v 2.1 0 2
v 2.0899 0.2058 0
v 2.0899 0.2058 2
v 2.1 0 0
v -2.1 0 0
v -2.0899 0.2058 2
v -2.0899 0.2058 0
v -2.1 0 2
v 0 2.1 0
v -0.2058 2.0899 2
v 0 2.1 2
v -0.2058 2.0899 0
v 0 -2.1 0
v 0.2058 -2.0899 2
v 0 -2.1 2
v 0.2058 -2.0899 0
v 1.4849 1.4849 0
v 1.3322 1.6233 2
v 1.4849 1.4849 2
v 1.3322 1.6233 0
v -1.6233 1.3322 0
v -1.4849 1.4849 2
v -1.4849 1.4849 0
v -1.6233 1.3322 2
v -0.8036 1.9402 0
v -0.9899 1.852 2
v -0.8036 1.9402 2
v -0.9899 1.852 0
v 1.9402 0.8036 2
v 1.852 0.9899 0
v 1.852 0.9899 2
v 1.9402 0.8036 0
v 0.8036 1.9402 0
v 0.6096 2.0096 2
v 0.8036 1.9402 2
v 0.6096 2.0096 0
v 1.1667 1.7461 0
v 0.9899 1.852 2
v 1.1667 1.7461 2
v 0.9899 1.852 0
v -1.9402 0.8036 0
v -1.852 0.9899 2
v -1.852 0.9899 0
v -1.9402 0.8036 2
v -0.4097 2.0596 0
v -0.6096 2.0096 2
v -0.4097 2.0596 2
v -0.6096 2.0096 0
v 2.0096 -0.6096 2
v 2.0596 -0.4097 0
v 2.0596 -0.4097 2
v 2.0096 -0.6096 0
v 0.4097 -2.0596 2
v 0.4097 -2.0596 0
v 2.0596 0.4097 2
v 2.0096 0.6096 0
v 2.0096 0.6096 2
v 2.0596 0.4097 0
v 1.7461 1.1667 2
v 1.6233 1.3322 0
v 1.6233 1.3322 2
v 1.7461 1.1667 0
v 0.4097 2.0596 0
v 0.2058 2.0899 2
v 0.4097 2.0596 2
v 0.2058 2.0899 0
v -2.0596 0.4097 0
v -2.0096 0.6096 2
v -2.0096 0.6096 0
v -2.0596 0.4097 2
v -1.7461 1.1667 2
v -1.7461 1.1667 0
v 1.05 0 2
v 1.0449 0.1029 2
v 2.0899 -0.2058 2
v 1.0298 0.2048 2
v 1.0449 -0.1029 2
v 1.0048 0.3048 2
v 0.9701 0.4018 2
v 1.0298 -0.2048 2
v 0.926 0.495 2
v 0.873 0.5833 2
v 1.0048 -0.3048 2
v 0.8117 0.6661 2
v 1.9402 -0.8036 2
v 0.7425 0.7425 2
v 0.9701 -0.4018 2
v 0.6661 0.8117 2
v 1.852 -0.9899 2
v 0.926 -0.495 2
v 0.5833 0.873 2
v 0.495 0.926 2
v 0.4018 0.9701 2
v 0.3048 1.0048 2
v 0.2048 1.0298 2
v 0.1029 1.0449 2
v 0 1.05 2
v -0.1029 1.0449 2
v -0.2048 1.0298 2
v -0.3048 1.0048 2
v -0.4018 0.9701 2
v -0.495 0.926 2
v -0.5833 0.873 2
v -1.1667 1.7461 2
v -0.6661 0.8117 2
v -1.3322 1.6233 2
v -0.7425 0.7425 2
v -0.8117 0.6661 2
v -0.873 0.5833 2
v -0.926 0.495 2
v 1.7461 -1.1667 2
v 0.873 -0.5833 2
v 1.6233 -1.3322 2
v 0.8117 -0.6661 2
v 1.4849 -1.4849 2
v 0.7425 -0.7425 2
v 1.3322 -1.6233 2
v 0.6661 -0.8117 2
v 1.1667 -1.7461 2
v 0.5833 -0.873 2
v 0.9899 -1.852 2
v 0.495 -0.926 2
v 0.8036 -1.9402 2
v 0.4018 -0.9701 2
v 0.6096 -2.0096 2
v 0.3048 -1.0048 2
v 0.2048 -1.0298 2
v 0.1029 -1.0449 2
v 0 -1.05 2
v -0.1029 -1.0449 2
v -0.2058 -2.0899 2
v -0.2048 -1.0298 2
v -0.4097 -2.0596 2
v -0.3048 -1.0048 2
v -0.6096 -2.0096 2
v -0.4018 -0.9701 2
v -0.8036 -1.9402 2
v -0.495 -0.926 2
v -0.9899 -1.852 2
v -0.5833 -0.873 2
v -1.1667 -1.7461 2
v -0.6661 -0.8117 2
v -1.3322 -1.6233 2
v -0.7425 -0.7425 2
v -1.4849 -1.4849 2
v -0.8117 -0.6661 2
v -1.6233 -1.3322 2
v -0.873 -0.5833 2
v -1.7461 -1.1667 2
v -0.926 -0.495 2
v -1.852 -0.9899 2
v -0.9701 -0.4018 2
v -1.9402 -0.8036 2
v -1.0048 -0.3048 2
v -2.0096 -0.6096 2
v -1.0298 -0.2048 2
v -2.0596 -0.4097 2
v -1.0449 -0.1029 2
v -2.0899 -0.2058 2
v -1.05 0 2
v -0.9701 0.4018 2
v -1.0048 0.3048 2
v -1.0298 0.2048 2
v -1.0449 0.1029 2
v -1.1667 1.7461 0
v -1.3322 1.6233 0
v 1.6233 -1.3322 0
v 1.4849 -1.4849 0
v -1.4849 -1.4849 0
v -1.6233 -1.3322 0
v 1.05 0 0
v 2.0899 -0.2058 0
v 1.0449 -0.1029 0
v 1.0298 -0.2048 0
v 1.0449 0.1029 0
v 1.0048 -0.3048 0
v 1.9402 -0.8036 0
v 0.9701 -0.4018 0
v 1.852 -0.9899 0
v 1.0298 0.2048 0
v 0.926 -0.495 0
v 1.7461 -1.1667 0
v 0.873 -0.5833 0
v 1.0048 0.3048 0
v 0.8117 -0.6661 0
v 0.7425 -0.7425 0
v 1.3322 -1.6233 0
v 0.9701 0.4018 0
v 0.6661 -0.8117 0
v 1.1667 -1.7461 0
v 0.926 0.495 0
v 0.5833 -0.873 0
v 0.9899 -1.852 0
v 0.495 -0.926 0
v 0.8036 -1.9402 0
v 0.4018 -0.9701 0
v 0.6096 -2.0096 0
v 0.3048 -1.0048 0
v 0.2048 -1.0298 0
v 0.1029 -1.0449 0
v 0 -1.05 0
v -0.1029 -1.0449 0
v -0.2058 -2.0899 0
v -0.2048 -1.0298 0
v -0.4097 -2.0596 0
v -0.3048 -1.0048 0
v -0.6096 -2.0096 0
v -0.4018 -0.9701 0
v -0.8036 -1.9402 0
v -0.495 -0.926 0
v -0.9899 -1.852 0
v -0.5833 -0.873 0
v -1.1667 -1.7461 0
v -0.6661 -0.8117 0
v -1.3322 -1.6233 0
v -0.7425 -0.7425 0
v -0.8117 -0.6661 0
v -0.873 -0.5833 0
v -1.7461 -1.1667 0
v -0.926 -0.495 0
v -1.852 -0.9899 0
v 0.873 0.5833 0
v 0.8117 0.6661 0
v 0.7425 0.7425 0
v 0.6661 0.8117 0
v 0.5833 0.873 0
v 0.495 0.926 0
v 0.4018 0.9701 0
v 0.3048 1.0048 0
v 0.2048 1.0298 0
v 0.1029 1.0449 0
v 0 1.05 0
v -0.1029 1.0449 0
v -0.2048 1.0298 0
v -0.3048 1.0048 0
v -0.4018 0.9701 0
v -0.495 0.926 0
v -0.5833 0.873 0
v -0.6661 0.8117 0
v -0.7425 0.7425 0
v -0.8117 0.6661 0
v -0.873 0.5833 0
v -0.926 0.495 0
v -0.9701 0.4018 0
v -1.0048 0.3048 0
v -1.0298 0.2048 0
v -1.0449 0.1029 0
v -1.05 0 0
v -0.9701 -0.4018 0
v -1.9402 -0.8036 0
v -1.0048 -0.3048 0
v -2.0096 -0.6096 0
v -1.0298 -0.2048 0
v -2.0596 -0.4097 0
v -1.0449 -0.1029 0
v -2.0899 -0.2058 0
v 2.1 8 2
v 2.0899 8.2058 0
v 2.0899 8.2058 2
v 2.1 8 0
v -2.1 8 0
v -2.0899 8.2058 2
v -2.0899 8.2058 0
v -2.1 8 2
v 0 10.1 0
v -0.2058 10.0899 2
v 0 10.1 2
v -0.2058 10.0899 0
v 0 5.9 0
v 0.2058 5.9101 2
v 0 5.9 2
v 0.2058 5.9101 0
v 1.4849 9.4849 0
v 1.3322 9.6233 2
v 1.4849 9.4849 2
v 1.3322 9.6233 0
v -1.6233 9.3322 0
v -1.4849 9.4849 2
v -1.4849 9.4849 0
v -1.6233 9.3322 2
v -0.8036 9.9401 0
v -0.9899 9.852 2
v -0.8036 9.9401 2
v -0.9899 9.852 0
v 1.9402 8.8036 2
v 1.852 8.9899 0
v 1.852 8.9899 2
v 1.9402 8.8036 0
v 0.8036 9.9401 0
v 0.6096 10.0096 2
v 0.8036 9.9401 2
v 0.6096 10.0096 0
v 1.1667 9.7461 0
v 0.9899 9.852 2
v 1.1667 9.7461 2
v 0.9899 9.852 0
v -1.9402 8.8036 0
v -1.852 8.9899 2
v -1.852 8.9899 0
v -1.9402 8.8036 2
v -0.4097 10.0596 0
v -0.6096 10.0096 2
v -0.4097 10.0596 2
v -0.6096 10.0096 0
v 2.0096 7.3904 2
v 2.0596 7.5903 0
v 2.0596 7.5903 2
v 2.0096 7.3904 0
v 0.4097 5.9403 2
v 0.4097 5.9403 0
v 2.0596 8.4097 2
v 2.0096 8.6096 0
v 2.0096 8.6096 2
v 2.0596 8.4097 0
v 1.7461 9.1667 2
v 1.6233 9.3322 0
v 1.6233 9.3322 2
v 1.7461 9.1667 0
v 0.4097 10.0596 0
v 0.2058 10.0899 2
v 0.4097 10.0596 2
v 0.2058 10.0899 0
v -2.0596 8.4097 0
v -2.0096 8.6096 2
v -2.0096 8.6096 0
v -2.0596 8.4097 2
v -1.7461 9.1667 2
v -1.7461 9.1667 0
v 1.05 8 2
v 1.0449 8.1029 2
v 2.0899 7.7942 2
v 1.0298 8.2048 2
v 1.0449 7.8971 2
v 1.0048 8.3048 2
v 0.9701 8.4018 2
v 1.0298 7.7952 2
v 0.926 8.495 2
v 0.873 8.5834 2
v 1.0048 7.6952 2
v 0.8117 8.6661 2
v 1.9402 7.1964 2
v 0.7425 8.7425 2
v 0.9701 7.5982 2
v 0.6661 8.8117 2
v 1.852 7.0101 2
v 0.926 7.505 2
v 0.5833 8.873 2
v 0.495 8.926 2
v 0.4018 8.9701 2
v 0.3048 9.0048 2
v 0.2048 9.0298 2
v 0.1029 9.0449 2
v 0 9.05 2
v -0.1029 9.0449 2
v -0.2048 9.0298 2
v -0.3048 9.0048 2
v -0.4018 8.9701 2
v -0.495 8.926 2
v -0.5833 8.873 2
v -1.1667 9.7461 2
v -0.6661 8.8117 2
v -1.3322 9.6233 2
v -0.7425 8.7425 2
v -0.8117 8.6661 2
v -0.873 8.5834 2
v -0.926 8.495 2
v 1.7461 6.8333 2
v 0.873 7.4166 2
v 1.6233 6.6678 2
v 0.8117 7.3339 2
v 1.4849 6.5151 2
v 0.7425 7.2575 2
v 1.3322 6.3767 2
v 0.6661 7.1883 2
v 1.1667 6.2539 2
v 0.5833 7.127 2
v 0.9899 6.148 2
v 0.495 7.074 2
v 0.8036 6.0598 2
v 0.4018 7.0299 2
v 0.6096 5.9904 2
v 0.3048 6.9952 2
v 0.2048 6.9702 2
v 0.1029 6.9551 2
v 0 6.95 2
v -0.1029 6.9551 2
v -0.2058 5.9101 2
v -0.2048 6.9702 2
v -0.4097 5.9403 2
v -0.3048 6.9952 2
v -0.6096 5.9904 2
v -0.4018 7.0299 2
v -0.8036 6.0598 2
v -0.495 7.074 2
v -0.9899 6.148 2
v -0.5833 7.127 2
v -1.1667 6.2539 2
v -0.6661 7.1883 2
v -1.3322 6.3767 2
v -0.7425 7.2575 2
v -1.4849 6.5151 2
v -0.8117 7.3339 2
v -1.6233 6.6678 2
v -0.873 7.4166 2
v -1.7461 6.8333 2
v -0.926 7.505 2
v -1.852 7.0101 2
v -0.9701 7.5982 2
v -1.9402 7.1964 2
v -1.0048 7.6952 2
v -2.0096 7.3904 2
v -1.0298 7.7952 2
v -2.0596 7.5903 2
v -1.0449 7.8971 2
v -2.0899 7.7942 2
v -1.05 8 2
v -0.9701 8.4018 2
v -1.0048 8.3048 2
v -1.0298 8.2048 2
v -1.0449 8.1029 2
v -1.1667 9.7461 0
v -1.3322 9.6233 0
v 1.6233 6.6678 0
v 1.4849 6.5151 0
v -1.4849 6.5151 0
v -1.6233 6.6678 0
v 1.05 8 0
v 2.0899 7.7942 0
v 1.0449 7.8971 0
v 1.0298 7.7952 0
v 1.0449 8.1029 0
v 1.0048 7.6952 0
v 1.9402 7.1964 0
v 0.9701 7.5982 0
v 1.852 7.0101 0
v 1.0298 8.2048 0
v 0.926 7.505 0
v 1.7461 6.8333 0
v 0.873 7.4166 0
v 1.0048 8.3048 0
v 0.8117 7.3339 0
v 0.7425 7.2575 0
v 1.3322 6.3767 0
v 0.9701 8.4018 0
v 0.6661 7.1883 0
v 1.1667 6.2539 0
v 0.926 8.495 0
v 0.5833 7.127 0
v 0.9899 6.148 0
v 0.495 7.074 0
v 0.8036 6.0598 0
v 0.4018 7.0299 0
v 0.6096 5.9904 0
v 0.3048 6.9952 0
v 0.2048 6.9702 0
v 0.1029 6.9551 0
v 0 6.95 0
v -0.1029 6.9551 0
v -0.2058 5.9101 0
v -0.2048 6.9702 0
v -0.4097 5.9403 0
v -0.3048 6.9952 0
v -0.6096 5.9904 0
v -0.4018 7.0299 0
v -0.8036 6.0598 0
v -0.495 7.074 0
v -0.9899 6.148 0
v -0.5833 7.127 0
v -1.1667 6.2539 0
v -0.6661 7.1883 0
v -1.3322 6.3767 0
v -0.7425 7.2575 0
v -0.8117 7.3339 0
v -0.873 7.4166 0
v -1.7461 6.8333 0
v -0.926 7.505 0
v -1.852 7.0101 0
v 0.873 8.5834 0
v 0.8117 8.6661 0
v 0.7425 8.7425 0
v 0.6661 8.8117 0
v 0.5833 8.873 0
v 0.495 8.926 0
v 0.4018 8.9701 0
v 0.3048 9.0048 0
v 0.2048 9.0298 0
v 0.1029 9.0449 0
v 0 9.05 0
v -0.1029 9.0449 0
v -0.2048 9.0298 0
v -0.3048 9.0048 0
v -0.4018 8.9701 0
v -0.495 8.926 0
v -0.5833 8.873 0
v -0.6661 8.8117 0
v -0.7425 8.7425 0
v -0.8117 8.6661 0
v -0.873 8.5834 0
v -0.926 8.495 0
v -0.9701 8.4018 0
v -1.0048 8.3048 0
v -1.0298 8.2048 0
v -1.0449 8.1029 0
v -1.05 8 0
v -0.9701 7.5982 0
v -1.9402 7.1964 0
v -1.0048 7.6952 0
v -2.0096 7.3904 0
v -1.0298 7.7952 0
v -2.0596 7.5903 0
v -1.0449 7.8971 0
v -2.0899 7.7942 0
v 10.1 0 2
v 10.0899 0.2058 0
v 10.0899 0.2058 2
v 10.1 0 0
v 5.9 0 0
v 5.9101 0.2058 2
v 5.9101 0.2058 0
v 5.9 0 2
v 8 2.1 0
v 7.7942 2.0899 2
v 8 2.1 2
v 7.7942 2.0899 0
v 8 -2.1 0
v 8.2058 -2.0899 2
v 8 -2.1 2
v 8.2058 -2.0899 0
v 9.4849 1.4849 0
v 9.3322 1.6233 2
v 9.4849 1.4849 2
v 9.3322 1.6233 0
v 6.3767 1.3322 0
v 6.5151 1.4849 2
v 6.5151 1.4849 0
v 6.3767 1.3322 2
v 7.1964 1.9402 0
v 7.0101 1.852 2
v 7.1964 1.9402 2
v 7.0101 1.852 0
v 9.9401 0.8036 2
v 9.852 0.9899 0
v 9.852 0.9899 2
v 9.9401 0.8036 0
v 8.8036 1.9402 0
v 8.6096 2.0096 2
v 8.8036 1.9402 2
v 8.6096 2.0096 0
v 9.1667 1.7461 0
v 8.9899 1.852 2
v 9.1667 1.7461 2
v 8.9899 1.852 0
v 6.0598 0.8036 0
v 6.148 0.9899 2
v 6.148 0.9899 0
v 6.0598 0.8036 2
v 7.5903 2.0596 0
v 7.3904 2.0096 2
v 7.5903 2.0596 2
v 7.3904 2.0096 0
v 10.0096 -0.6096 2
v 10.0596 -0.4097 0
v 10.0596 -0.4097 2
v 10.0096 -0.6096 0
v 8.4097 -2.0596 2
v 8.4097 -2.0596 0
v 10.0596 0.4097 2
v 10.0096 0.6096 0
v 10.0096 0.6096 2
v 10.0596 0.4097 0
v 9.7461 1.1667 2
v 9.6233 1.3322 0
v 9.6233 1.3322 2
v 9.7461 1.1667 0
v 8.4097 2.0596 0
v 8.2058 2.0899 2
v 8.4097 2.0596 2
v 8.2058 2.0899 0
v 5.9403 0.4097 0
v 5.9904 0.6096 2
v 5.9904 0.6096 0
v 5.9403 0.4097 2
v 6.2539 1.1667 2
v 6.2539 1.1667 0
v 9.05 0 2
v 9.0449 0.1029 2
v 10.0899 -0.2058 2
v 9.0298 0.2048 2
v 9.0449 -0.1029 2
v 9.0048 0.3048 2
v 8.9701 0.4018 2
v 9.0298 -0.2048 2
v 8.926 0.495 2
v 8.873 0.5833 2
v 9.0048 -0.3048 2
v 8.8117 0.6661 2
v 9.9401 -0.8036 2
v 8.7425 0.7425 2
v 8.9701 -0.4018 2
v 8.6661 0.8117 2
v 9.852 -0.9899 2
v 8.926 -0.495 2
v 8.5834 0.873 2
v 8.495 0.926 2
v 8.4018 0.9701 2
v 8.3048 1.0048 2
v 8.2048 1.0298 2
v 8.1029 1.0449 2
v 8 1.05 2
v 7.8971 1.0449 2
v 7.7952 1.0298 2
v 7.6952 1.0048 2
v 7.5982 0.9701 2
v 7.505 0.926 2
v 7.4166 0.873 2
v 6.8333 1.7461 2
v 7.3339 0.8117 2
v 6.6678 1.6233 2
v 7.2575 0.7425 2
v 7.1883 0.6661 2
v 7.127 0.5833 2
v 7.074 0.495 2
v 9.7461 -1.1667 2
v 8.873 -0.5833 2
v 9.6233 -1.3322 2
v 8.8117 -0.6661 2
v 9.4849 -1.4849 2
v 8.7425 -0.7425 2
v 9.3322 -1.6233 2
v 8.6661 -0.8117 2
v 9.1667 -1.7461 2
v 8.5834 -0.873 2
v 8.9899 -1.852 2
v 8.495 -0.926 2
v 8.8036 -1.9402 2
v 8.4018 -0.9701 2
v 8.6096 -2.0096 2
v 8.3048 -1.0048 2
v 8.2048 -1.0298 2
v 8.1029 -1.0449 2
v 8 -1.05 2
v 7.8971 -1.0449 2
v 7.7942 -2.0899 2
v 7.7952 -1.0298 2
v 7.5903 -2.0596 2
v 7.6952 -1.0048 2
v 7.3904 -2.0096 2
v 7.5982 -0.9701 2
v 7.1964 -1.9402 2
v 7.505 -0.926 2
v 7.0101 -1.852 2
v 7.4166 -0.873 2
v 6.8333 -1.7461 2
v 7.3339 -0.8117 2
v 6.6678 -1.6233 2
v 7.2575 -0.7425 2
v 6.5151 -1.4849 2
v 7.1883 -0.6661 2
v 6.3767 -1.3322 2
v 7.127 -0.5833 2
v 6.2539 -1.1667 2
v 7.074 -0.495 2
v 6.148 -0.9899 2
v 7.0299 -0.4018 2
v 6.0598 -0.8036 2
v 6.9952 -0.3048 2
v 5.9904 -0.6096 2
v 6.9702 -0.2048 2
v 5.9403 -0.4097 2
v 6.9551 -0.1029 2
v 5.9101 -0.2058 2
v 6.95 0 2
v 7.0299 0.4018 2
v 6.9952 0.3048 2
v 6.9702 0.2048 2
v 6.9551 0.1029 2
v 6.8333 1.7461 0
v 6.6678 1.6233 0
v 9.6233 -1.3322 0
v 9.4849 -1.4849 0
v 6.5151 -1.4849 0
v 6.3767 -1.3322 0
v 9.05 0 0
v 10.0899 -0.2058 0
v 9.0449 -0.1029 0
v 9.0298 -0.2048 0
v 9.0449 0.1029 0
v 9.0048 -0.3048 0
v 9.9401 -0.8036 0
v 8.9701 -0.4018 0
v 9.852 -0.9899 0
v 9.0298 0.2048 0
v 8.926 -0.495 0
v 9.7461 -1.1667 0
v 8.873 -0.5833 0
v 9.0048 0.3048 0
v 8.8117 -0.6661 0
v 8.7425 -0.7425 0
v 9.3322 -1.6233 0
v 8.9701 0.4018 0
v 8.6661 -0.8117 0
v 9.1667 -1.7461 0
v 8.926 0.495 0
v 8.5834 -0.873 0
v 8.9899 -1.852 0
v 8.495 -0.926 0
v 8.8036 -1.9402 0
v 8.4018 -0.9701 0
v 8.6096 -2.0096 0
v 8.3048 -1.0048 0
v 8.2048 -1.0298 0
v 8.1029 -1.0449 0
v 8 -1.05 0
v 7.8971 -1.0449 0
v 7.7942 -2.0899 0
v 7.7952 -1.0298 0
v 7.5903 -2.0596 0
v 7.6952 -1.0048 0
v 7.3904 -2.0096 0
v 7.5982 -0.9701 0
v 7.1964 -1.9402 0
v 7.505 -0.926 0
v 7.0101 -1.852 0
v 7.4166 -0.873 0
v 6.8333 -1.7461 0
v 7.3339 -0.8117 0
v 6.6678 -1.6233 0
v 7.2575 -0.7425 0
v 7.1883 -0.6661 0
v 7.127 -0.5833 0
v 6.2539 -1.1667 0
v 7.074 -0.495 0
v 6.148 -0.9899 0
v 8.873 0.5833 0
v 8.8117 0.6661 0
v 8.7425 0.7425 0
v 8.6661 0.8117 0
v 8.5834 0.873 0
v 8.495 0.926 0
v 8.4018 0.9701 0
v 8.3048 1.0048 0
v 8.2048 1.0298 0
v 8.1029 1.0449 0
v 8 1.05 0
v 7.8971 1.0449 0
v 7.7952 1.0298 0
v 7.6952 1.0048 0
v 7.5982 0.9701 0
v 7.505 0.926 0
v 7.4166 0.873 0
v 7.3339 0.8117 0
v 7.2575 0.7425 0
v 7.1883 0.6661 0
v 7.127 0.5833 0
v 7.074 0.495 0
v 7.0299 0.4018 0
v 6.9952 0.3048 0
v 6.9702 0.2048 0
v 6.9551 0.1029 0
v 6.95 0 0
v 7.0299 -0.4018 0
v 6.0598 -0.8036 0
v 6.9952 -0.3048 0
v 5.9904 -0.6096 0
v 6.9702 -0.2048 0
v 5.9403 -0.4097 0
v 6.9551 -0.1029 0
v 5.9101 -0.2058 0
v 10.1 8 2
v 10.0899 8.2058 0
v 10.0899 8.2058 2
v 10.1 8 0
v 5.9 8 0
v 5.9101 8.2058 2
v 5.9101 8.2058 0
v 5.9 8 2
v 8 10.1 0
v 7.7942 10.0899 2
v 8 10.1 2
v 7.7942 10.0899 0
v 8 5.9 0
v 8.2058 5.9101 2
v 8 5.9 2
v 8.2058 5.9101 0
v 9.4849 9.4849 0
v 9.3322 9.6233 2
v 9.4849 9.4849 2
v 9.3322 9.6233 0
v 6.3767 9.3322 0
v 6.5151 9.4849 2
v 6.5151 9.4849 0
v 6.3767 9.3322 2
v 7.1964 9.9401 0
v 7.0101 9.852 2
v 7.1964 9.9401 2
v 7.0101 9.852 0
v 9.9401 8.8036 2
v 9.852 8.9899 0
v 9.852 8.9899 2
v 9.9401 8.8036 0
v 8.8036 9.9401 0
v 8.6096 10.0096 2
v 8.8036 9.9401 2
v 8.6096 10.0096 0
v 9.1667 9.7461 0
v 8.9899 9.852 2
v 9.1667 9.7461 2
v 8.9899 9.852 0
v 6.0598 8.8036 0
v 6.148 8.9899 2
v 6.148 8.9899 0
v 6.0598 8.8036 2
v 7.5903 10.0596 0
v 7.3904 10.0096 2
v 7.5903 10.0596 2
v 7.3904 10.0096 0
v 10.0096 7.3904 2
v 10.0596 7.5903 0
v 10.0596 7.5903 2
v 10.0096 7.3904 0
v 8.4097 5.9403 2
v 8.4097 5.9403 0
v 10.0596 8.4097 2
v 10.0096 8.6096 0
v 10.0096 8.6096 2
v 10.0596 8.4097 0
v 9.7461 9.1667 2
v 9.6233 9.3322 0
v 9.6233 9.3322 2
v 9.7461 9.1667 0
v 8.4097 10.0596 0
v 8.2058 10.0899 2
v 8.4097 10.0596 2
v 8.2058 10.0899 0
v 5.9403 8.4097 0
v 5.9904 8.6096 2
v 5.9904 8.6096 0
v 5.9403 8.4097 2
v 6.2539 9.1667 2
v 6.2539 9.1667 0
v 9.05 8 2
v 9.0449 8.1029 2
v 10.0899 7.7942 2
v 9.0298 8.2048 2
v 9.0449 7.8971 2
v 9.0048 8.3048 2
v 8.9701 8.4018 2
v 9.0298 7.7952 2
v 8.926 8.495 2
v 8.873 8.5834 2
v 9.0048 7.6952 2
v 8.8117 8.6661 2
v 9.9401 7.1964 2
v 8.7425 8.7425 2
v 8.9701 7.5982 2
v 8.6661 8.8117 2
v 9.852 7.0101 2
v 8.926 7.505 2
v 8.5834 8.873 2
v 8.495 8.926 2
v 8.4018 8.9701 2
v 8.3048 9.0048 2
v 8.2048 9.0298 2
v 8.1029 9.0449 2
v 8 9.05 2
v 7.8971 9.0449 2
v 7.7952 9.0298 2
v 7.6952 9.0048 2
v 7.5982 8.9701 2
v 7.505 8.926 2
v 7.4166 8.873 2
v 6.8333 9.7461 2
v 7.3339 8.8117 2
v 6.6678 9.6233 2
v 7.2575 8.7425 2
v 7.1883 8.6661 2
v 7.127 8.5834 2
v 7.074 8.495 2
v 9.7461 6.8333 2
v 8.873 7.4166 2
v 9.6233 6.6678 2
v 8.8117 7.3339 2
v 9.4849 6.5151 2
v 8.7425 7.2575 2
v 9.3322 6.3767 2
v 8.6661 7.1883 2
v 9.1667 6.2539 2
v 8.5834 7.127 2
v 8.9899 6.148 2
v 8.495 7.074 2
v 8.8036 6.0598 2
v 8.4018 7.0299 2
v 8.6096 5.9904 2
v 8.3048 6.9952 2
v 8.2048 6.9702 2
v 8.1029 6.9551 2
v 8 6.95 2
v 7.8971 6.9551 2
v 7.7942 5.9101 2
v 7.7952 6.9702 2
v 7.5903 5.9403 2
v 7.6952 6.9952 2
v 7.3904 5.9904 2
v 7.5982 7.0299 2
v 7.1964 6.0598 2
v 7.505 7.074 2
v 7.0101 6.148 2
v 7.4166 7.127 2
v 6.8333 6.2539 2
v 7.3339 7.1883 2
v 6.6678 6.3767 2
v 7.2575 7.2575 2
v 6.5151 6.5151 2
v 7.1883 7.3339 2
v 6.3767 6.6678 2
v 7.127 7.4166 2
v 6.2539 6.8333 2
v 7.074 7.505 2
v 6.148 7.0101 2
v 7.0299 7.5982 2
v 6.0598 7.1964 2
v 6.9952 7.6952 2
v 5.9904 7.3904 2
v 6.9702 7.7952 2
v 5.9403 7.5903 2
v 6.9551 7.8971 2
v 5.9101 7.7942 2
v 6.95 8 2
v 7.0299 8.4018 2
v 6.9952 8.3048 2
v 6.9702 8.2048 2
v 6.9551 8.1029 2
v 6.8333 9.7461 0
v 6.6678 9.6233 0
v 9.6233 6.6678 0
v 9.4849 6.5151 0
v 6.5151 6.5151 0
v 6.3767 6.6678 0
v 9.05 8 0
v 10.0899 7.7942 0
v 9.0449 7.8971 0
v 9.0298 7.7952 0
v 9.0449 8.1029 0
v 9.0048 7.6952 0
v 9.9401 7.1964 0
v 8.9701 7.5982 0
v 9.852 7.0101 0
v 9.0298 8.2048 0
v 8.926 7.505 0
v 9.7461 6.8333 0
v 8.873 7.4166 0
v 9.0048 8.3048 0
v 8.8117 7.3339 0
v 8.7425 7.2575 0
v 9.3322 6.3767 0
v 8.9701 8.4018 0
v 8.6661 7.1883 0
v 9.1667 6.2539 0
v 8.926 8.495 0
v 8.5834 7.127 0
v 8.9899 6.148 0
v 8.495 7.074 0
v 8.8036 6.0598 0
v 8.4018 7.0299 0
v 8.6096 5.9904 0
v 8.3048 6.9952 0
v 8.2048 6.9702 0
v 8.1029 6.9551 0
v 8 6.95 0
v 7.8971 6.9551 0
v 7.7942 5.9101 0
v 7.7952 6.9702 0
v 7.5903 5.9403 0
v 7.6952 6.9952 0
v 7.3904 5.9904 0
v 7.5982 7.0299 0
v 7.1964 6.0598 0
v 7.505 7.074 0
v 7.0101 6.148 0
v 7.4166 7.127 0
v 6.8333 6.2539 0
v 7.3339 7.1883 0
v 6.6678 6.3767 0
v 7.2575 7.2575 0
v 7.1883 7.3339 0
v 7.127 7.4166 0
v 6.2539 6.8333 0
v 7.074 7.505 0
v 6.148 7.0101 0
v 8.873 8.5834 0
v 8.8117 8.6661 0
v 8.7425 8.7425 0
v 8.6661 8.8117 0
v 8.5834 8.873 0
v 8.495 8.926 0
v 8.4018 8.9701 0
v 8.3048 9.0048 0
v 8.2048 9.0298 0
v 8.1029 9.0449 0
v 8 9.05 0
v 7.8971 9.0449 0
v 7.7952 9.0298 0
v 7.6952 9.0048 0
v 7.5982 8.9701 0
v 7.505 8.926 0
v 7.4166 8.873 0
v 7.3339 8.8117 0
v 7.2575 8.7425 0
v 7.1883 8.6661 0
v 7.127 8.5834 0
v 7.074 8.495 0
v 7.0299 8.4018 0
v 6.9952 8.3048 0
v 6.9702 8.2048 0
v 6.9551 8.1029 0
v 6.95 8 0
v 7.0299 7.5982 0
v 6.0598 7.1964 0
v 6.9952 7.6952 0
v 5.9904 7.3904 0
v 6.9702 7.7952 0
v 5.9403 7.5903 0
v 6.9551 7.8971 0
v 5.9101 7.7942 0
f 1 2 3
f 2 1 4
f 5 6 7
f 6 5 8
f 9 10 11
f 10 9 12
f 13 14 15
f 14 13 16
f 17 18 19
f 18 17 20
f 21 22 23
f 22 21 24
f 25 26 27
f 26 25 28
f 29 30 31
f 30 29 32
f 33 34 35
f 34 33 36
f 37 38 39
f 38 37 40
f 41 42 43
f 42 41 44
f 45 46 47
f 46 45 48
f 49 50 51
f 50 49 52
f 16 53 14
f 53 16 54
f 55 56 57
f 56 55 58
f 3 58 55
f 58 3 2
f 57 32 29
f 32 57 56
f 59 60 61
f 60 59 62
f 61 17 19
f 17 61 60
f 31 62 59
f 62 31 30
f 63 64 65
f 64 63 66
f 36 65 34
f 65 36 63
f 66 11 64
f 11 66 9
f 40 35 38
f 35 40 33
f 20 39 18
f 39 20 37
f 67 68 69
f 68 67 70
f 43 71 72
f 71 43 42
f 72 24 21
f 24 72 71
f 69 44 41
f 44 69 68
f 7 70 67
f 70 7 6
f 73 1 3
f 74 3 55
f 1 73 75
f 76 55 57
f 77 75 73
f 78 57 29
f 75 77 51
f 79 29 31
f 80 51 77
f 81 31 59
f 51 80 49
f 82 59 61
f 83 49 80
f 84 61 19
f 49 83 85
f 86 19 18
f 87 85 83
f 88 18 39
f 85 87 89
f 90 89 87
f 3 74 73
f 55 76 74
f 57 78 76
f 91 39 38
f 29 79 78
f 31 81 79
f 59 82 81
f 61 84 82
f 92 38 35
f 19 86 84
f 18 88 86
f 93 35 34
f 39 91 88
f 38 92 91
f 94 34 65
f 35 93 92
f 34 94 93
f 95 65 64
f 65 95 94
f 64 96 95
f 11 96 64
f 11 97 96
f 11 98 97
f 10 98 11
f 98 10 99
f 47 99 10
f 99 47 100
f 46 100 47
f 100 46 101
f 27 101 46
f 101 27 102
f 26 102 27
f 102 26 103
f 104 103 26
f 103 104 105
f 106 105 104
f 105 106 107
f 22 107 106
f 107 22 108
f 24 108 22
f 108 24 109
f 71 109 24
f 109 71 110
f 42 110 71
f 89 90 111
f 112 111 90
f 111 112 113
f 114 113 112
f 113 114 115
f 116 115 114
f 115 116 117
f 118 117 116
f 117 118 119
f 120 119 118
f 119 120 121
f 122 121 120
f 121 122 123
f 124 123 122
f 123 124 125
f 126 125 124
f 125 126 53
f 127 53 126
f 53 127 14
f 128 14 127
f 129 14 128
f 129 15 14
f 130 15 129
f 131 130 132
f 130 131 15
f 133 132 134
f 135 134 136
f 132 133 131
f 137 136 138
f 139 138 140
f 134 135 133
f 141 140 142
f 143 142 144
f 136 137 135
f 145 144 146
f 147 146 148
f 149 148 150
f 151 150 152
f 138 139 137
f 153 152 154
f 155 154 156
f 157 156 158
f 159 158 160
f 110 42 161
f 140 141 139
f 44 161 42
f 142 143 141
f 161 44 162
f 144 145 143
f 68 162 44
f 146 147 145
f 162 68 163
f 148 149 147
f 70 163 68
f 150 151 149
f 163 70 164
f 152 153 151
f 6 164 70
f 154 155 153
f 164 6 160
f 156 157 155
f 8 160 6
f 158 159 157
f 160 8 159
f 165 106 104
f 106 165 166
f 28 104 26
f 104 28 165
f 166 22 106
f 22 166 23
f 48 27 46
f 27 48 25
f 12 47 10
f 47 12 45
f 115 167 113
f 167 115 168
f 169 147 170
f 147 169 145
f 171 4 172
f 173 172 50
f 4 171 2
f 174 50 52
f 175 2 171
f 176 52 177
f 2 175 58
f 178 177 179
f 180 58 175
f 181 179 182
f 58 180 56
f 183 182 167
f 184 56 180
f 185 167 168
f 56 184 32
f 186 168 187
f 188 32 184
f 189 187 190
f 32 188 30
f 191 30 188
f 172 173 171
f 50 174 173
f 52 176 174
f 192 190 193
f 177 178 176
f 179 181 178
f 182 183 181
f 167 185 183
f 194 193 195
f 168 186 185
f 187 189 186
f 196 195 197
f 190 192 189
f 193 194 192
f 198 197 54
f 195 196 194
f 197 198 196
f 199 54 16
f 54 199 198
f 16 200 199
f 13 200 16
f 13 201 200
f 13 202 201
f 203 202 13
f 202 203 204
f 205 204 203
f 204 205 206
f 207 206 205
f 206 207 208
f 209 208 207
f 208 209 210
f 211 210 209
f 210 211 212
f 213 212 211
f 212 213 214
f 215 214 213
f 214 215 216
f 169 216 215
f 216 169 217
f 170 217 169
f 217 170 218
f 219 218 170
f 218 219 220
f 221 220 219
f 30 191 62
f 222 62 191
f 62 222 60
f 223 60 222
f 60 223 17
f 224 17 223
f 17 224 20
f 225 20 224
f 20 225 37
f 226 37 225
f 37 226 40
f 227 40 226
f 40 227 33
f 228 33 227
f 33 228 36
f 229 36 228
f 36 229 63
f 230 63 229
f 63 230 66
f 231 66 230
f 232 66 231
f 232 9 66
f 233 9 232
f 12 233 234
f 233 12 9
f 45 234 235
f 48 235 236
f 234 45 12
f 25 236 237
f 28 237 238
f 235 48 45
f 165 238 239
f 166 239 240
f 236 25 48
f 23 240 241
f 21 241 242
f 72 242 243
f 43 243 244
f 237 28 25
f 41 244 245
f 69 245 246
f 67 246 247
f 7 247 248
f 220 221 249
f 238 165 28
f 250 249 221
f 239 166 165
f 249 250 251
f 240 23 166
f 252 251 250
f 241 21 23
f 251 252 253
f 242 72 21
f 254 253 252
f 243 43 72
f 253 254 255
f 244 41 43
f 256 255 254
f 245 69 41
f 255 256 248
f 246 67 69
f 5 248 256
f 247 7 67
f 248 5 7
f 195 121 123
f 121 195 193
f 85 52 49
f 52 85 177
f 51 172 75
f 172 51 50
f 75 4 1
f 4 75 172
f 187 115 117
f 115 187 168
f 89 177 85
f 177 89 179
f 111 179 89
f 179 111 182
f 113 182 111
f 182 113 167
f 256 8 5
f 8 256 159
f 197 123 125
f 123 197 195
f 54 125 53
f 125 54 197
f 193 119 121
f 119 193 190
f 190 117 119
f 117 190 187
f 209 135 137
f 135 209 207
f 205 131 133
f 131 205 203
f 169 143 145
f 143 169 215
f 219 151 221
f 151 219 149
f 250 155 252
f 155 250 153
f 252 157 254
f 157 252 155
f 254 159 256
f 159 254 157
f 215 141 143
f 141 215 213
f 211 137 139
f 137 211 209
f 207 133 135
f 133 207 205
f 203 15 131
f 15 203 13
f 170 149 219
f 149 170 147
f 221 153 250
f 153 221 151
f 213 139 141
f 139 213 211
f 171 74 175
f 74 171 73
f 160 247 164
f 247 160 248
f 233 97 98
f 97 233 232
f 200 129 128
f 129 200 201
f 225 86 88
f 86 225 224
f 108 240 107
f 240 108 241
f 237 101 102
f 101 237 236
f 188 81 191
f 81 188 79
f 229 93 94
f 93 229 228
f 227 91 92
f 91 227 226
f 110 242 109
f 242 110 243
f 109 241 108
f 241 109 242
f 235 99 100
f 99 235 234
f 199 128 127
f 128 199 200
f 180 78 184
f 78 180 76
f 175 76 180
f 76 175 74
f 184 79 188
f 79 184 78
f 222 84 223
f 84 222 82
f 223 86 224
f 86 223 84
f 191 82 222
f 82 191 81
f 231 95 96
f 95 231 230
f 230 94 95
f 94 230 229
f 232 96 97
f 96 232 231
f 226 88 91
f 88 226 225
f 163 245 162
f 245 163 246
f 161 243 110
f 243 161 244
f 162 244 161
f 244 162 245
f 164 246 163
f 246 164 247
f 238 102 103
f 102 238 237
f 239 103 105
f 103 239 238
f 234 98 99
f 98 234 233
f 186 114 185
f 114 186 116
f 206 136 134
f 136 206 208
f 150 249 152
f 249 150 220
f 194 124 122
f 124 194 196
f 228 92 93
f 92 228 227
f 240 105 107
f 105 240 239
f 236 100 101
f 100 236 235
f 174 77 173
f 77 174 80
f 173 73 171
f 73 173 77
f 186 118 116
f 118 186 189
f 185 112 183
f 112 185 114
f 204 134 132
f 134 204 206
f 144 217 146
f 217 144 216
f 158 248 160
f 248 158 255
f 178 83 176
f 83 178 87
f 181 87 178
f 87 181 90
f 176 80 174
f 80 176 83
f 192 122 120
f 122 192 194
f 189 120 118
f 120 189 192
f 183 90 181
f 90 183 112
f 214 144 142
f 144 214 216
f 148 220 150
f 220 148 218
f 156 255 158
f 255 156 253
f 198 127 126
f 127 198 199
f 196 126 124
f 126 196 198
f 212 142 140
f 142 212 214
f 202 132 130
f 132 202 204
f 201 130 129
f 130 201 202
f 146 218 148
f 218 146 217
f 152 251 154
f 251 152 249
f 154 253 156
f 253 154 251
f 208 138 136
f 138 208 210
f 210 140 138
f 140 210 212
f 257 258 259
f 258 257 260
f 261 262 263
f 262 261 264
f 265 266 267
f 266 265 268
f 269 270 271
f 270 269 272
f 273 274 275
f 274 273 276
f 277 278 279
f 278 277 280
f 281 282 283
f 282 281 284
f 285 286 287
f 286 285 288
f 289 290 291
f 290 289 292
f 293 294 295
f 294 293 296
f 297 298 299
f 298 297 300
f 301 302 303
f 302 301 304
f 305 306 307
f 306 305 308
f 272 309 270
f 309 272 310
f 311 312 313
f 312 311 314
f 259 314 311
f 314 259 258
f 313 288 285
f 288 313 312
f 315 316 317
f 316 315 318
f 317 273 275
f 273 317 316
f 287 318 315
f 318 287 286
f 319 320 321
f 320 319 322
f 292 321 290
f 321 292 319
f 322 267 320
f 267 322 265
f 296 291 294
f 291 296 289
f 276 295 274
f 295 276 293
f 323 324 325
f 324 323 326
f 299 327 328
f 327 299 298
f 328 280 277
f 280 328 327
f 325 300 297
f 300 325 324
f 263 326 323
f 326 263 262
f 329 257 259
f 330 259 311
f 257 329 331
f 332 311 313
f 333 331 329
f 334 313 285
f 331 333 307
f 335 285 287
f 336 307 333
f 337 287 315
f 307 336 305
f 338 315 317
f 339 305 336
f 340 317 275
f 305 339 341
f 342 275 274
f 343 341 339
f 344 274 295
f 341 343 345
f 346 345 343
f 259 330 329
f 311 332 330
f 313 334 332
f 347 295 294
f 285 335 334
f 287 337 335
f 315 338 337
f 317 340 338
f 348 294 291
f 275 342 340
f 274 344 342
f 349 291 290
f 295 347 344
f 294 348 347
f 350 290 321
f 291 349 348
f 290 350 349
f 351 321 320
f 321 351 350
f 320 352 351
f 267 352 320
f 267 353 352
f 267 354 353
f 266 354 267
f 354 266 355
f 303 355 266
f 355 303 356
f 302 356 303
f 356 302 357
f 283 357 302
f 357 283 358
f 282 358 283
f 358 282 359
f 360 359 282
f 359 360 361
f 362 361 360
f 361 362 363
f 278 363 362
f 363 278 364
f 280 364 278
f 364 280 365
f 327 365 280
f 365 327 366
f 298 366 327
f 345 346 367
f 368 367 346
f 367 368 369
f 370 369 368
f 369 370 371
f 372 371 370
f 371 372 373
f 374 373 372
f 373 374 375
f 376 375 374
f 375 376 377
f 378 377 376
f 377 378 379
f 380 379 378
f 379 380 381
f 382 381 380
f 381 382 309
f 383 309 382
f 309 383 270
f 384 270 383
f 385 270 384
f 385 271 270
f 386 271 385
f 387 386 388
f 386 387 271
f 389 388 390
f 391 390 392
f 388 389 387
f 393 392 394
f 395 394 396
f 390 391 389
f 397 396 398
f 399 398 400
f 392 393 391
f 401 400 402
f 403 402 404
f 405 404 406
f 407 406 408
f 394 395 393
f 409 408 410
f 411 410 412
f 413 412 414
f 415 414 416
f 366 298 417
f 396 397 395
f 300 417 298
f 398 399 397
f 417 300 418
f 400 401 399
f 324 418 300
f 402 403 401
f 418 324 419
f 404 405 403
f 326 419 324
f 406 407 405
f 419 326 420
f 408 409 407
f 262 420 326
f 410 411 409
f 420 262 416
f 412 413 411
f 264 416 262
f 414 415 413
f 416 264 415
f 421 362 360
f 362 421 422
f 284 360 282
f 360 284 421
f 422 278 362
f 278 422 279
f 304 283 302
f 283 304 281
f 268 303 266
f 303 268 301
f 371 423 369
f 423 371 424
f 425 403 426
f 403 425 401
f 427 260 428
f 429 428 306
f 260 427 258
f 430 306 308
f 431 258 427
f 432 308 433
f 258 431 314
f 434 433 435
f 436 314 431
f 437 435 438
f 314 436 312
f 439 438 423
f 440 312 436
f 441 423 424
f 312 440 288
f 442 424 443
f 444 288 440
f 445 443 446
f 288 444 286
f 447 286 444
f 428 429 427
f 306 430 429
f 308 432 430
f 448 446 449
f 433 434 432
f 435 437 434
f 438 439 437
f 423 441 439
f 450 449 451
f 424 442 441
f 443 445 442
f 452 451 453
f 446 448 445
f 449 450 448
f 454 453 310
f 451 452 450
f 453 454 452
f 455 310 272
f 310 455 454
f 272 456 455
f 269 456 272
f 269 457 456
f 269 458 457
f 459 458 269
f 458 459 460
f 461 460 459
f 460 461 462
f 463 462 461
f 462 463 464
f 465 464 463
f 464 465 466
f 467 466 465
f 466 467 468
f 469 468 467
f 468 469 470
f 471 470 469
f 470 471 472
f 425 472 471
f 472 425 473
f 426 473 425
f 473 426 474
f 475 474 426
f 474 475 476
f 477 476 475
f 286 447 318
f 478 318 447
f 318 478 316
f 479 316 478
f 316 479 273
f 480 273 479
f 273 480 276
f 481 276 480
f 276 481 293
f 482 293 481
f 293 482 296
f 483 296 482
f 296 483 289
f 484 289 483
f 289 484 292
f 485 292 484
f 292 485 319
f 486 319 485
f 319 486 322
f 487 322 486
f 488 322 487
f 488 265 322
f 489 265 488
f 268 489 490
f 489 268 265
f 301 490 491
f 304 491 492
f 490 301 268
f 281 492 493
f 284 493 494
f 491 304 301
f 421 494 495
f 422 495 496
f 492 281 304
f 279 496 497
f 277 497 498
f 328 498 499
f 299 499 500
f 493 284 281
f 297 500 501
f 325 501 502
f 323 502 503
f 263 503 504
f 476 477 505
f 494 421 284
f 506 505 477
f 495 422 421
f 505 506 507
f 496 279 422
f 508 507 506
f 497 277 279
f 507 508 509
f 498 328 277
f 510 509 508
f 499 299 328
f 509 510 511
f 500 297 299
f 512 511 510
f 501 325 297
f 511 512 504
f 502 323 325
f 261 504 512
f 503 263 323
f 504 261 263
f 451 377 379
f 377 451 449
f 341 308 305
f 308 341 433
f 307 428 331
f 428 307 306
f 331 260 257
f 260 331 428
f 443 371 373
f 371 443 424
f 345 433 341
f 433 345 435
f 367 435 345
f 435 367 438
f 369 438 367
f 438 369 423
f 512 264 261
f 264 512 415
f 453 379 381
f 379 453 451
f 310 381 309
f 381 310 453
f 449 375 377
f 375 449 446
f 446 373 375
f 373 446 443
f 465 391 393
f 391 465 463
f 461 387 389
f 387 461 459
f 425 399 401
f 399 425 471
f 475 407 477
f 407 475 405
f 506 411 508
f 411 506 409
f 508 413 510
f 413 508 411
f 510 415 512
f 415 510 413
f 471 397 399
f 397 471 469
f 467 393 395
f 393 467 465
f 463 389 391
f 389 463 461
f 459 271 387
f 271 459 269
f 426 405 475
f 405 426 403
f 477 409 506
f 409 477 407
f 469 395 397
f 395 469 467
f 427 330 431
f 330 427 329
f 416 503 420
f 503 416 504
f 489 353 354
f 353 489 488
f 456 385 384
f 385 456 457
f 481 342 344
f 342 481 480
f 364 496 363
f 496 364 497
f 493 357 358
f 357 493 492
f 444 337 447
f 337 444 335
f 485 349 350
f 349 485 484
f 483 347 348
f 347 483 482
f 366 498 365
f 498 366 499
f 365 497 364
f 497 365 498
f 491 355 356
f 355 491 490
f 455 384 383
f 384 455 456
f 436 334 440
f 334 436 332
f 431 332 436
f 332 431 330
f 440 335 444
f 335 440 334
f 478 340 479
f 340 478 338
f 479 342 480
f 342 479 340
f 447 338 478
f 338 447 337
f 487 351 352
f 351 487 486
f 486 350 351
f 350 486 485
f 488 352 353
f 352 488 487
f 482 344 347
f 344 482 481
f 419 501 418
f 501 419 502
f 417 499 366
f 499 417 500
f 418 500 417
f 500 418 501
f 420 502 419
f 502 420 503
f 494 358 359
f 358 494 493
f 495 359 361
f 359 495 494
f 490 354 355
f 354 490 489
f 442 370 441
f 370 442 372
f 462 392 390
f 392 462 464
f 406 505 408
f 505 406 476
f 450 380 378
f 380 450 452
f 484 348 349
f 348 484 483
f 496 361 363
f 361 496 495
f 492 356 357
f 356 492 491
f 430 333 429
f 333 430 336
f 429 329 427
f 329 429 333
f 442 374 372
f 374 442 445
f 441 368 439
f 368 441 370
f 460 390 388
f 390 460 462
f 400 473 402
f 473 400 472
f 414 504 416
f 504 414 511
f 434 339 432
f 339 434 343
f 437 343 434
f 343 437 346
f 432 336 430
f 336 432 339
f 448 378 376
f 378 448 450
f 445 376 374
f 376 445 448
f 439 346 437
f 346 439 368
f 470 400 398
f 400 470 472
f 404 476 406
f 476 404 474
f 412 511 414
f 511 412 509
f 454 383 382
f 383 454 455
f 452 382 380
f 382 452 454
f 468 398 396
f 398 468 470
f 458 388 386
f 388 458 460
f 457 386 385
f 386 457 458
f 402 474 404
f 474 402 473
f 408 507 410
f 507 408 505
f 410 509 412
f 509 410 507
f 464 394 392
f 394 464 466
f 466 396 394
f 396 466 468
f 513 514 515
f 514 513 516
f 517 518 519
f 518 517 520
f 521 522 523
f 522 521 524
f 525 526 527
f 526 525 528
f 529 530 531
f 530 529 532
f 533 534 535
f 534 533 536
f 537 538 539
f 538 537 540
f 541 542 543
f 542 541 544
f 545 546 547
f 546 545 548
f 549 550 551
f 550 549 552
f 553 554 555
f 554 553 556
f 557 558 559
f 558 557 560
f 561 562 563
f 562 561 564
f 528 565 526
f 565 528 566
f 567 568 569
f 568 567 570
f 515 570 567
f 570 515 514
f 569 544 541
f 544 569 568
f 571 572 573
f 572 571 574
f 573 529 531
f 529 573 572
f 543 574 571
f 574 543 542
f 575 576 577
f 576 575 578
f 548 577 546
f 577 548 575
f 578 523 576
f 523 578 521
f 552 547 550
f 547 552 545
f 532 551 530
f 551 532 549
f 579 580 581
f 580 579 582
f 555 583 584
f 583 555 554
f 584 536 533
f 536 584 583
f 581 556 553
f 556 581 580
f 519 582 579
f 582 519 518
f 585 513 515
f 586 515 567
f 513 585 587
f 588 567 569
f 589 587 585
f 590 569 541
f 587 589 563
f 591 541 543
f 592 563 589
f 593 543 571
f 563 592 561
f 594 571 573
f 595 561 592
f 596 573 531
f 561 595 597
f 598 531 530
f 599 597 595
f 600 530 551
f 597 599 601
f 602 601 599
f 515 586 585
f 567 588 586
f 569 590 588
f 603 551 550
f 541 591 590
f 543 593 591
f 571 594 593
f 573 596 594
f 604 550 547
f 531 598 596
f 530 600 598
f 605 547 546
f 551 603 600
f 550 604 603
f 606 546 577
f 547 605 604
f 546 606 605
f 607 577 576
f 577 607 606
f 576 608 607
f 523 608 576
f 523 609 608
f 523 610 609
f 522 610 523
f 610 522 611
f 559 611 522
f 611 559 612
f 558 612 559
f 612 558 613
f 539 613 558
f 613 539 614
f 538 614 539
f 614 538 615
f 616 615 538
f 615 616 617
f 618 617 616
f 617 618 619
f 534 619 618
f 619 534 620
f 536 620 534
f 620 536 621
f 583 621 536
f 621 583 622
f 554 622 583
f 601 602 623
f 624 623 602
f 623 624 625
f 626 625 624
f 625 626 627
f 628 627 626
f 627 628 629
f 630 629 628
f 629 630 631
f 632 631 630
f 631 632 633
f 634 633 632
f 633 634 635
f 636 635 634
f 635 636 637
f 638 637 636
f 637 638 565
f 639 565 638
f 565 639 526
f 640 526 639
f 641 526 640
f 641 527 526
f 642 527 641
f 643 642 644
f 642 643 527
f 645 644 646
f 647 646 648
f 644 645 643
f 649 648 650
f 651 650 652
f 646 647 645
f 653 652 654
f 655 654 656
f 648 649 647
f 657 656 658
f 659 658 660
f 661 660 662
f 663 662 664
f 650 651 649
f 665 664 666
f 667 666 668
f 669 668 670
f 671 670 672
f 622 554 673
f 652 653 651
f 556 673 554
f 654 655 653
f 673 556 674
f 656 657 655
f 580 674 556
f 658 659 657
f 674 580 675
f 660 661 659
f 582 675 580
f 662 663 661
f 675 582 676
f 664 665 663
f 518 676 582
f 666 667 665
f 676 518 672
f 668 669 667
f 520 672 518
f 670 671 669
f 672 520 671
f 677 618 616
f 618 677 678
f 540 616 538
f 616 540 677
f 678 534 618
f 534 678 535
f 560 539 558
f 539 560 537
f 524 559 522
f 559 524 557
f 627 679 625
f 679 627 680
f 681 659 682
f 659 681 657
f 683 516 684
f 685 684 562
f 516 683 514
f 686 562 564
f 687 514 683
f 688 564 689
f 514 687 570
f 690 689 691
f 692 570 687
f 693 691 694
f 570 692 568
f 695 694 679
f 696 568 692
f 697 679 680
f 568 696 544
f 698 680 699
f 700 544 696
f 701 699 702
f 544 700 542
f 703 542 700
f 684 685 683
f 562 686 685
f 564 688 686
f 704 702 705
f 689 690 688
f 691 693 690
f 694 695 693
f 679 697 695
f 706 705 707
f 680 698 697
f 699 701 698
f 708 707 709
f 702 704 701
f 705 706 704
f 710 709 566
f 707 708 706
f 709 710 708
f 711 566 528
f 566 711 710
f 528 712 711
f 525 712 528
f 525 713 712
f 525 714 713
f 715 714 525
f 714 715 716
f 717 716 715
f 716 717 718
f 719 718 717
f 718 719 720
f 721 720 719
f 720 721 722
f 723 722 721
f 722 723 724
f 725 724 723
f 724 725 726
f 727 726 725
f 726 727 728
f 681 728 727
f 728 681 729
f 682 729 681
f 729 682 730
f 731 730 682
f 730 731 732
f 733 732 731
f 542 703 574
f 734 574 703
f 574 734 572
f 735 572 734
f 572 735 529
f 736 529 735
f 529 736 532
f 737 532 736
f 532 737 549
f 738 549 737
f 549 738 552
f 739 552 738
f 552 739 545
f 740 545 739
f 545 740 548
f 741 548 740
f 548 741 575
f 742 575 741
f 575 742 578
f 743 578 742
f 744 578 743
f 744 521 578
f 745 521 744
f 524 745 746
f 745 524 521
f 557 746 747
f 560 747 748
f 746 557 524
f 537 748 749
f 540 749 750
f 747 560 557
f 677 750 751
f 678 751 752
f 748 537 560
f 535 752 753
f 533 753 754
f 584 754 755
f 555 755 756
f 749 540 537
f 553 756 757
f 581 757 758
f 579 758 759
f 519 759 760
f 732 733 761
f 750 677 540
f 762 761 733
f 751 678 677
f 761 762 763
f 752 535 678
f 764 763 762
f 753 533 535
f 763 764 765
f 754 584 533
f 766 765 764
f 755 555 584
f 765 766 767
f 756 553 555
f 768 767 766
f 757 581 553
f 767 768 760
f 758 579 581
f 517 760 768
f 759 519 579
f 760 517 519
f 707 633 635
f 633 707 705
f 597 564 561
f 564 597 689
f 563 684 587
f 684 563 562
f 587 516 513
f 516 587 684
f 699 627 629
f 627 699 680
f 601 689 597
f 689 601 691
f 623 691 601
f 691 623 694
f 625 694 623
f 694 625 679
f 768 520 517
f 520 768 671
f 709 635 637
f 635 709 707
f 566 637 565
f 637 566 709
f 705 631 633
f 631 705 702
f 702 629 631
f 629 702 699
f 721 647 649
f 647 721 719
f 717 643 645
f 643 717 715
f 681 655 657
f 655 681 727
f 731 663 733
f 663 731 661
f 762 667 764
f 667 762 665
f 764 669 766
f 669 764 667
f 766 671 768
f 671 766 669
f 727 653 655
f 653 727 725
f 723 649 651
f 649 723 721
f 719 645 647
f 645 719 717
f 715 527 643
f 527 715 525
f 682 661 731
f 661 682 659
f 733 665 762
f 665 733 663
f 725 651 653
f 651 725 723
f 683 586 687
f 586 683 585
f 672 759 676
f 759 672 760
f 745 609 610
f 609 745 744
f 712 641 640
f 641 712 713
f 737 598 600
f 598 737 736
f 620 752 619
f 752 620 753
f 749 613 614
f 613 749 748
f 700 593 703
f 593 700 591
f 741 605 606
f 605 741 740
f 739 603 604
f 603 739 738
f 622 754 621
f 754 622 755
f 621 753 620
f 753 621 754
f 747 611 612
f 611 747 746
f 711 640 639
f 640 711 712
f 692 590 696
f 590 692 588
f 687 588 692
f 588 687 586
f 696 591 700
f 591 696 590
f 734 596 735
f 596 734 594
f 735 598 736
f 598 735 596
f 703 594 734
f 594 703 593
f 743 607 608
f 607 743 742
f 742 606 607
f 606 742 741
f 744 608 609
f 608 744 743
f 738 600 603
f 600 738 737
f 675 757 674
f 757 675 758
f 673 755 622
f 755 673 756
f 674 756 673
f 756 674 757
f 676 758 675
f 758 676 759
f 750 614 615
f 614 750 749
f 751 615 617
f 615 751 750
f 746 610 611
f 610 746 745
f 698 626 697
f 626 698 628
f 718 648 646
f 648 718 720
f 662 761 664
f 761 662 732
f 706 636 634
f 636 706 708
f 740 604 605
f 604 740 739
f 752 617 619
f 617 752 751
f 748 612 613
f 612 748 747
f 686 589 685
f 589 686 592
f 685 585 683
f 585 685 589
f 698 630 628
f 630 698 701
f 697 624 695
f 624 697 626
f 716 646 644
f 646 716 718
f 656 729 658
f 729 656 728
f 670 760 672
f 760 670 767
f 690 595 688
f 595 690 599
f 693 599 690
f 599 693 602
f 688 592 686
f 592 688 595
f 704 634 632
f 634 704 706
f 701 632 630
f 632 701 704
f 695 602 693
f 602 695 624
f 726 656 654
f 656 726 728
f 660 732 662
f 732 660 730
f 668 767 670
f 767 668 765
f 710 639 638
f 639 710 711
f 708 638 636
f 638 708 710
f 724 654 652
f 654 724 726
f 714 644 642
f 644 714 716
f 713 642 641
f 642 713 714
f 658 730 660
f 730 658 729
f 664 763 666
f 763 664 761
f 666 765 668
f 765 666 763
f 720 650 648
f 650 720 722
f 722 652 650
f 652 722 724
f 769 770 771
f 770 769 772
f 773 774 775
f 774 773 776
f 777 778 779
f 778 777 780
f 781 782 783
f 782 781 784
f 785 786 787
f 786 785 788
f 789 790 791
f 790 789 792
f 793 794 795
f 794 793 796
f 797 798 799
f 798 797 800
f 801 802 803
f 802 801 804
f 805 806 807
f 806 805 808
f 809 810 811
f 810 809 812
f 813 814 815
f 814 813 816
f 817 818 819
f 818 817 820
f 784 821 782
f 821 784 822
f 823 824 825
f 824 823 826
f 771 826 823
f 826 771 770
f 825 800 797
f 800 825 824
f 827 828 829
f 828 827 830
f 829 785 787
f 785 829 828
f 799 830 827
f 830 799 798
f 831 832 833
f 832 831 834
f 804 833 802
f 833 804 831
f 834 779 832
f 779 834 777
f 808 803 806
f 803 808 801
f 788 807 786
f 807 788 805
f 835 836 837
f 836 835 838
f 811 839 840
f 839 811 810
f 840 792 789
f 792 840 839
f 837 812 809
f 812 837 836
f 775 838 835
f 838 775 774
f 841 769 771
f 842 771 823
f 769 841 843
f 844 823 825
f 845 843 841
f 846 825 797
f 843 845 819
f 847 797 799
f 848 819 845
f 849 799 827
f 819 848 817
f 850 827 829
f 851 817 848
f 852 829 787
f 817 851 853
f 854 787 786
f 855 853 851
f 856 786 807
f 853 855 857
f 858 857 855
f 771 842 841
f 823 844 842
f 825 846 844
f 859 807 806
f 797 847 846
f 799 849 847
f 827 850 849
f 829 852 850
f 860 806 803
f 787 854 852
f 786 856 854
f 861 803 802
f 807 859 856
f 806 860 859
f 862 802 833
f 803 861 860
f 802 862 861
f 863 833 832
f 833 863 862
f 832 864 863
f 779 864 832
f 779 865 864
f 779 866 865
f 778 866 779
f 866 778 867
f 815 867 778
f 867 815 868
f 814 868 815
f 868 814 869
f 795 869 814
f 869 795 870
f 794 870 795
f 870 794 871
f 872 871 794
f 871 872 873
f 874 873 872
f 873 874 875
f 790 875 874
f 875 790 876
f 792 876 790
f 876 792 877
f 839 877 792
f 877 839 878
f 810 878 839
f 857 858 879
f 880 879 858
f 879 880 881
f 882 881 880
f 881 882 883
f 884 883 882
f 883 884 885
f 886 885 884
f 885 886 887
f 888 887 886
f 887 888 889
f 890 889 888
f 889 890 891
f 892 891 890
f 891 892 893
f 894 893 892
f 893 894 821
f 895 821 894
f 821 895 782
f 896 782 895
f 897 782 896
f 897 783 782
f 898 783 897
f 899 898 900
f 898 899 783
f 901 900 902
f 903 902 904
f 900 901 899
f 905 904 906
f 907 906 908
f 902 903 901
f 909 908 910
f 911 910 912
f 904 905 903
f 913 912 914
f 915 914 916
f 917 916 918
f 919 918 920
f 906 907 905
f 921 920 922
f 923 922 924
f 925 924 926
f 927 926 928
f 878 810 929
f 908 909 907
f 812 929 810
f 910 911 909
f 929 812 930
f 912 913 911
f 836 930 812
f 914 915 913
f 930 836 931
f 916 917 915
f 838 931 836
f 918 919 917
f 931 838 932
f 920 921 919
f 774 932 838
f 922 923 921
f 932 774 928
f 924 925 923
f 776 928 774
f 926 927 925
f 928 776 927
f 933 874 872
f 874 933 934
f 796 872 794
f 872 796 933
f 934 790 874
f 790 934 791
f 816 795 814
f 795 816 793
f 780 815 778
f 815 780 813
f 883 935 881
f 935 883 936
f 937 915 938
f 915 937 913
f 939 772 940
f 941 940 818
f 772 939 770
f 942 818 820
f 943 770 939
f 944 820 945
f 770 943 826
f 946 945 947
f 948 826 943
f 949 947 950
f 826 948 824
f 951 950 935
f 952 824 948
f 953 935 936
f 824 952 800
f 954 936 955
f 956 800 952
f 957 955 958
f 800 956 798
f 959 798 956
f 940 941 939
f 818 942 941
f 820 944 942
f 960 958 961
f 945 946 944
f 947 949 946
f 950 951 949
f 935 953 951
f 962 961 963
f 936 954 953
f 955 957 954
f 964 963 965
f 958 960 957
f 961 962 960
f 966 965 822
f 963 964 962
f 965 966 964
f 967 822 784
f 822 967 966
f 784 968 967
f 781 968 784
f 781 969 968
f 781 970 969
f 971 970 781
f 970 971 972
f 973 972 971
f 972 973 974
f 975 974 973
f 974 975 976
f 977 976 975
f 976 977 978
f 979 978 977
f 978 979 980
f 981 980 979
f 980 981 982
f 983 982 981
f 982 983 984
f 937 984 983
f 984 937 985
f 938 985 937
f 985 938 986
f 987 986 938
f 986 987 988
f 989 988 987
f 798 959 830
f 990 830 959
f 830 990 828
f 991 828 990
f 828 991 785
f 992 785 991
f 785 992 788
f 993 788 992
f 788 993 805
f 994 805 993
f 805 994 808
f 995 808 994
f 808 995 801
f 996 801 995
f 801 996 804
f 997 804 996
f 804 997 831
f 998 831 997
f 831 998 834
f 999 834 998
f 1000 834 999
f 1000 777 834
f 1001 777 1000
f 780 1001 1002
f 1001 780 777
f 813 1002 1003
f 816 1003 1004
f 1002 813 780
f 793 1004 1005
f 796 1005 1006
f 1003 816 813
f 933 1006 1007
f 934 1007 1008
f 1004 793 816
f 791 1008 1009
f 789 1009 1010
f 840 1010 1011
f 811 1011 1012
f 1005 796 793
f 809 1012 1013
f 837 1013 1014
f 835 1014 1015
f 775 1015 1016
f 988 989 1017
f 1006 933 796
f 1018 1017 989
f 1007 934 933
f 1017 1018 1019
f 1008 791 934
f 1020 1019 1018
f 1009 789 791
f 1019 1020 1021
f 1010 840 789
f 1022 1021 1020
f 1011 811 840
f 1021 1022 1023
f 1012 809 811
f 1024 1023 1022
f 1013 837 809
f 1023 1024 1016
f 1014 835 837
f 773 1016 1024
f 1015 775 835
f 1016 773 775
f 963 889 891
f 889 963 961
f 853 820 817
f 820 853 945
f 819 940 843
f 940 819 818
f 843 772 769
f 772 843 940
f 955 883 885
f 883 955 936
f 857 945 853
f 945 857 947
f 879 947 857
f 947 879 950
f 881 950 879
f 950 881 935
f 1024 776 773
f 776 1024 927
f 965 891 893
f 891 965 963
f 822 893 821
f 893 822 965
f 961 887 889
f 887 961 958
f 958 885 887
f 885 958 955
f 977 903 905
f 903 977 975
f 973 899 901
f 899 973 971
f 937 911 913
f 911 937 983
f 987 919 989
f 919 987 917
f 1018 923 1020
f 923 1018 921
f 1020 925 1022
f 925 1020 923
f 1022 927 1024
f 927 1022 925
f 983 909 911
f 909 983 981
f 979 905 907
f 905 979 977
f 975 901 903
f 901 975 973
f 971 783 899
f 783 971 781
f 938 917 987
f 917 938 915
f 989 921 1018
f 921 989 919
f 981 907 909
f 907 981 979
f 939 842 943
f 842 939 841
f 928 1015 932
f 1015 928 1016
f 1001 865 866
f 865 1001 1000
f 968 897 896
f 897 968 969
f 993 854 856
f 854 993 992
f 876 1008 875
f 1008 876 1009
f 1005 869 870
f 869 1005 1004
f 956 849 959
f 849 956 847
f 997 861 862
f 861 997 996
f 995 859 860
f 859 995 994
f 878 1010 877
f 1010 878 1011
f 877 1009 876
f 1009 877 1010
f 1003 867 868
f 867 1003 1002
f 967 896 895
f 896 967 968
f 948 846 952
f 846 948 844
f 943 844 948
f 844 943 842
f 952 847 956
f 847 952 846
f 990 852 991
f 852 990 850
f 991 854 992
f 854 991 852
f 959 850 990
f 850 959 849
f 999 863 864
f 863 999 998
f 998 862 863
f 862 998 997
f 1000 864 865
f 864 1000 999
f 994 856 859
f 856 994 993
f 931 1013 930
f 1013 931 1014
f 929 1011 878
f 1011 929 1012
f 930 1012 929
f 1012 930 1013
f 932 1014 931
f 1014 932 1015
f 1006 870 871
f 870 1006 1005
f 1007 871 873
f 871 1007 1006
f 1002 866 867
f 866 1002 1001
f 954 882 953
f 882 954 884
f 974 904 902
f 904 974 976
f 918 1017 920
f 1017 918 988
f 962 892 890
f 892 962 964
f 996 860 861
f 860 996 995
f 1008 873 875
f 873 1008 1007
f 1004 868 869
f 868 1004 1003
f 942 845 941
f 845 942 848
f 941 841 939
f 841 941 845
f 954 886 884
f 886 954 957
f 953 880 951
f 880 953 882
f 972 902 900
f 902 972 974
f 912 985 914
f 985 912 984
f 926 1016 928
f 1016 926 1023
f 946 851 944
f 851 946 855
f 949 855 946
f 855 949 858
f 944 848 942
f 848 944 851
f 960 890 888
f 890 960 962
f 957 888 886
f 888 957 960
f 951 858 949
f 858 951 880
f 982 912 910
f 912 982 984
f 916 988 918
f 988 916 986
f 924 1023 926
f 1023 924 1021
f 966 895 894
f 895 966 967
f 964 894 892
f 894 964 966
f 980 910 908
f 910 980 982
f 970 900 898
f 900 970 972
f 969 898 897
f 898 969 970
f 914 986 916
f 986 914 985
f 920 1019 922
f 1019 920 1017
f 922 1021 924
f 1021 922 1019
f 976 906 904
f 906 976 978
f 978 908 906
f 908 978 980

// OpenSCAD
$fn = 64;

module washer(height = 1.2) {
    difference() {
        cylinder(d = 4.2, h = height);
        translate([0, 0, -0.01]) cylinder(d = 2.1, h = height + 0.02);
    }
}

for (pos = [[0, 0], [0, 8], [8,0], [8,8]]) {
    translate([pos[0], pos[1], 0]) washer(2);
}
